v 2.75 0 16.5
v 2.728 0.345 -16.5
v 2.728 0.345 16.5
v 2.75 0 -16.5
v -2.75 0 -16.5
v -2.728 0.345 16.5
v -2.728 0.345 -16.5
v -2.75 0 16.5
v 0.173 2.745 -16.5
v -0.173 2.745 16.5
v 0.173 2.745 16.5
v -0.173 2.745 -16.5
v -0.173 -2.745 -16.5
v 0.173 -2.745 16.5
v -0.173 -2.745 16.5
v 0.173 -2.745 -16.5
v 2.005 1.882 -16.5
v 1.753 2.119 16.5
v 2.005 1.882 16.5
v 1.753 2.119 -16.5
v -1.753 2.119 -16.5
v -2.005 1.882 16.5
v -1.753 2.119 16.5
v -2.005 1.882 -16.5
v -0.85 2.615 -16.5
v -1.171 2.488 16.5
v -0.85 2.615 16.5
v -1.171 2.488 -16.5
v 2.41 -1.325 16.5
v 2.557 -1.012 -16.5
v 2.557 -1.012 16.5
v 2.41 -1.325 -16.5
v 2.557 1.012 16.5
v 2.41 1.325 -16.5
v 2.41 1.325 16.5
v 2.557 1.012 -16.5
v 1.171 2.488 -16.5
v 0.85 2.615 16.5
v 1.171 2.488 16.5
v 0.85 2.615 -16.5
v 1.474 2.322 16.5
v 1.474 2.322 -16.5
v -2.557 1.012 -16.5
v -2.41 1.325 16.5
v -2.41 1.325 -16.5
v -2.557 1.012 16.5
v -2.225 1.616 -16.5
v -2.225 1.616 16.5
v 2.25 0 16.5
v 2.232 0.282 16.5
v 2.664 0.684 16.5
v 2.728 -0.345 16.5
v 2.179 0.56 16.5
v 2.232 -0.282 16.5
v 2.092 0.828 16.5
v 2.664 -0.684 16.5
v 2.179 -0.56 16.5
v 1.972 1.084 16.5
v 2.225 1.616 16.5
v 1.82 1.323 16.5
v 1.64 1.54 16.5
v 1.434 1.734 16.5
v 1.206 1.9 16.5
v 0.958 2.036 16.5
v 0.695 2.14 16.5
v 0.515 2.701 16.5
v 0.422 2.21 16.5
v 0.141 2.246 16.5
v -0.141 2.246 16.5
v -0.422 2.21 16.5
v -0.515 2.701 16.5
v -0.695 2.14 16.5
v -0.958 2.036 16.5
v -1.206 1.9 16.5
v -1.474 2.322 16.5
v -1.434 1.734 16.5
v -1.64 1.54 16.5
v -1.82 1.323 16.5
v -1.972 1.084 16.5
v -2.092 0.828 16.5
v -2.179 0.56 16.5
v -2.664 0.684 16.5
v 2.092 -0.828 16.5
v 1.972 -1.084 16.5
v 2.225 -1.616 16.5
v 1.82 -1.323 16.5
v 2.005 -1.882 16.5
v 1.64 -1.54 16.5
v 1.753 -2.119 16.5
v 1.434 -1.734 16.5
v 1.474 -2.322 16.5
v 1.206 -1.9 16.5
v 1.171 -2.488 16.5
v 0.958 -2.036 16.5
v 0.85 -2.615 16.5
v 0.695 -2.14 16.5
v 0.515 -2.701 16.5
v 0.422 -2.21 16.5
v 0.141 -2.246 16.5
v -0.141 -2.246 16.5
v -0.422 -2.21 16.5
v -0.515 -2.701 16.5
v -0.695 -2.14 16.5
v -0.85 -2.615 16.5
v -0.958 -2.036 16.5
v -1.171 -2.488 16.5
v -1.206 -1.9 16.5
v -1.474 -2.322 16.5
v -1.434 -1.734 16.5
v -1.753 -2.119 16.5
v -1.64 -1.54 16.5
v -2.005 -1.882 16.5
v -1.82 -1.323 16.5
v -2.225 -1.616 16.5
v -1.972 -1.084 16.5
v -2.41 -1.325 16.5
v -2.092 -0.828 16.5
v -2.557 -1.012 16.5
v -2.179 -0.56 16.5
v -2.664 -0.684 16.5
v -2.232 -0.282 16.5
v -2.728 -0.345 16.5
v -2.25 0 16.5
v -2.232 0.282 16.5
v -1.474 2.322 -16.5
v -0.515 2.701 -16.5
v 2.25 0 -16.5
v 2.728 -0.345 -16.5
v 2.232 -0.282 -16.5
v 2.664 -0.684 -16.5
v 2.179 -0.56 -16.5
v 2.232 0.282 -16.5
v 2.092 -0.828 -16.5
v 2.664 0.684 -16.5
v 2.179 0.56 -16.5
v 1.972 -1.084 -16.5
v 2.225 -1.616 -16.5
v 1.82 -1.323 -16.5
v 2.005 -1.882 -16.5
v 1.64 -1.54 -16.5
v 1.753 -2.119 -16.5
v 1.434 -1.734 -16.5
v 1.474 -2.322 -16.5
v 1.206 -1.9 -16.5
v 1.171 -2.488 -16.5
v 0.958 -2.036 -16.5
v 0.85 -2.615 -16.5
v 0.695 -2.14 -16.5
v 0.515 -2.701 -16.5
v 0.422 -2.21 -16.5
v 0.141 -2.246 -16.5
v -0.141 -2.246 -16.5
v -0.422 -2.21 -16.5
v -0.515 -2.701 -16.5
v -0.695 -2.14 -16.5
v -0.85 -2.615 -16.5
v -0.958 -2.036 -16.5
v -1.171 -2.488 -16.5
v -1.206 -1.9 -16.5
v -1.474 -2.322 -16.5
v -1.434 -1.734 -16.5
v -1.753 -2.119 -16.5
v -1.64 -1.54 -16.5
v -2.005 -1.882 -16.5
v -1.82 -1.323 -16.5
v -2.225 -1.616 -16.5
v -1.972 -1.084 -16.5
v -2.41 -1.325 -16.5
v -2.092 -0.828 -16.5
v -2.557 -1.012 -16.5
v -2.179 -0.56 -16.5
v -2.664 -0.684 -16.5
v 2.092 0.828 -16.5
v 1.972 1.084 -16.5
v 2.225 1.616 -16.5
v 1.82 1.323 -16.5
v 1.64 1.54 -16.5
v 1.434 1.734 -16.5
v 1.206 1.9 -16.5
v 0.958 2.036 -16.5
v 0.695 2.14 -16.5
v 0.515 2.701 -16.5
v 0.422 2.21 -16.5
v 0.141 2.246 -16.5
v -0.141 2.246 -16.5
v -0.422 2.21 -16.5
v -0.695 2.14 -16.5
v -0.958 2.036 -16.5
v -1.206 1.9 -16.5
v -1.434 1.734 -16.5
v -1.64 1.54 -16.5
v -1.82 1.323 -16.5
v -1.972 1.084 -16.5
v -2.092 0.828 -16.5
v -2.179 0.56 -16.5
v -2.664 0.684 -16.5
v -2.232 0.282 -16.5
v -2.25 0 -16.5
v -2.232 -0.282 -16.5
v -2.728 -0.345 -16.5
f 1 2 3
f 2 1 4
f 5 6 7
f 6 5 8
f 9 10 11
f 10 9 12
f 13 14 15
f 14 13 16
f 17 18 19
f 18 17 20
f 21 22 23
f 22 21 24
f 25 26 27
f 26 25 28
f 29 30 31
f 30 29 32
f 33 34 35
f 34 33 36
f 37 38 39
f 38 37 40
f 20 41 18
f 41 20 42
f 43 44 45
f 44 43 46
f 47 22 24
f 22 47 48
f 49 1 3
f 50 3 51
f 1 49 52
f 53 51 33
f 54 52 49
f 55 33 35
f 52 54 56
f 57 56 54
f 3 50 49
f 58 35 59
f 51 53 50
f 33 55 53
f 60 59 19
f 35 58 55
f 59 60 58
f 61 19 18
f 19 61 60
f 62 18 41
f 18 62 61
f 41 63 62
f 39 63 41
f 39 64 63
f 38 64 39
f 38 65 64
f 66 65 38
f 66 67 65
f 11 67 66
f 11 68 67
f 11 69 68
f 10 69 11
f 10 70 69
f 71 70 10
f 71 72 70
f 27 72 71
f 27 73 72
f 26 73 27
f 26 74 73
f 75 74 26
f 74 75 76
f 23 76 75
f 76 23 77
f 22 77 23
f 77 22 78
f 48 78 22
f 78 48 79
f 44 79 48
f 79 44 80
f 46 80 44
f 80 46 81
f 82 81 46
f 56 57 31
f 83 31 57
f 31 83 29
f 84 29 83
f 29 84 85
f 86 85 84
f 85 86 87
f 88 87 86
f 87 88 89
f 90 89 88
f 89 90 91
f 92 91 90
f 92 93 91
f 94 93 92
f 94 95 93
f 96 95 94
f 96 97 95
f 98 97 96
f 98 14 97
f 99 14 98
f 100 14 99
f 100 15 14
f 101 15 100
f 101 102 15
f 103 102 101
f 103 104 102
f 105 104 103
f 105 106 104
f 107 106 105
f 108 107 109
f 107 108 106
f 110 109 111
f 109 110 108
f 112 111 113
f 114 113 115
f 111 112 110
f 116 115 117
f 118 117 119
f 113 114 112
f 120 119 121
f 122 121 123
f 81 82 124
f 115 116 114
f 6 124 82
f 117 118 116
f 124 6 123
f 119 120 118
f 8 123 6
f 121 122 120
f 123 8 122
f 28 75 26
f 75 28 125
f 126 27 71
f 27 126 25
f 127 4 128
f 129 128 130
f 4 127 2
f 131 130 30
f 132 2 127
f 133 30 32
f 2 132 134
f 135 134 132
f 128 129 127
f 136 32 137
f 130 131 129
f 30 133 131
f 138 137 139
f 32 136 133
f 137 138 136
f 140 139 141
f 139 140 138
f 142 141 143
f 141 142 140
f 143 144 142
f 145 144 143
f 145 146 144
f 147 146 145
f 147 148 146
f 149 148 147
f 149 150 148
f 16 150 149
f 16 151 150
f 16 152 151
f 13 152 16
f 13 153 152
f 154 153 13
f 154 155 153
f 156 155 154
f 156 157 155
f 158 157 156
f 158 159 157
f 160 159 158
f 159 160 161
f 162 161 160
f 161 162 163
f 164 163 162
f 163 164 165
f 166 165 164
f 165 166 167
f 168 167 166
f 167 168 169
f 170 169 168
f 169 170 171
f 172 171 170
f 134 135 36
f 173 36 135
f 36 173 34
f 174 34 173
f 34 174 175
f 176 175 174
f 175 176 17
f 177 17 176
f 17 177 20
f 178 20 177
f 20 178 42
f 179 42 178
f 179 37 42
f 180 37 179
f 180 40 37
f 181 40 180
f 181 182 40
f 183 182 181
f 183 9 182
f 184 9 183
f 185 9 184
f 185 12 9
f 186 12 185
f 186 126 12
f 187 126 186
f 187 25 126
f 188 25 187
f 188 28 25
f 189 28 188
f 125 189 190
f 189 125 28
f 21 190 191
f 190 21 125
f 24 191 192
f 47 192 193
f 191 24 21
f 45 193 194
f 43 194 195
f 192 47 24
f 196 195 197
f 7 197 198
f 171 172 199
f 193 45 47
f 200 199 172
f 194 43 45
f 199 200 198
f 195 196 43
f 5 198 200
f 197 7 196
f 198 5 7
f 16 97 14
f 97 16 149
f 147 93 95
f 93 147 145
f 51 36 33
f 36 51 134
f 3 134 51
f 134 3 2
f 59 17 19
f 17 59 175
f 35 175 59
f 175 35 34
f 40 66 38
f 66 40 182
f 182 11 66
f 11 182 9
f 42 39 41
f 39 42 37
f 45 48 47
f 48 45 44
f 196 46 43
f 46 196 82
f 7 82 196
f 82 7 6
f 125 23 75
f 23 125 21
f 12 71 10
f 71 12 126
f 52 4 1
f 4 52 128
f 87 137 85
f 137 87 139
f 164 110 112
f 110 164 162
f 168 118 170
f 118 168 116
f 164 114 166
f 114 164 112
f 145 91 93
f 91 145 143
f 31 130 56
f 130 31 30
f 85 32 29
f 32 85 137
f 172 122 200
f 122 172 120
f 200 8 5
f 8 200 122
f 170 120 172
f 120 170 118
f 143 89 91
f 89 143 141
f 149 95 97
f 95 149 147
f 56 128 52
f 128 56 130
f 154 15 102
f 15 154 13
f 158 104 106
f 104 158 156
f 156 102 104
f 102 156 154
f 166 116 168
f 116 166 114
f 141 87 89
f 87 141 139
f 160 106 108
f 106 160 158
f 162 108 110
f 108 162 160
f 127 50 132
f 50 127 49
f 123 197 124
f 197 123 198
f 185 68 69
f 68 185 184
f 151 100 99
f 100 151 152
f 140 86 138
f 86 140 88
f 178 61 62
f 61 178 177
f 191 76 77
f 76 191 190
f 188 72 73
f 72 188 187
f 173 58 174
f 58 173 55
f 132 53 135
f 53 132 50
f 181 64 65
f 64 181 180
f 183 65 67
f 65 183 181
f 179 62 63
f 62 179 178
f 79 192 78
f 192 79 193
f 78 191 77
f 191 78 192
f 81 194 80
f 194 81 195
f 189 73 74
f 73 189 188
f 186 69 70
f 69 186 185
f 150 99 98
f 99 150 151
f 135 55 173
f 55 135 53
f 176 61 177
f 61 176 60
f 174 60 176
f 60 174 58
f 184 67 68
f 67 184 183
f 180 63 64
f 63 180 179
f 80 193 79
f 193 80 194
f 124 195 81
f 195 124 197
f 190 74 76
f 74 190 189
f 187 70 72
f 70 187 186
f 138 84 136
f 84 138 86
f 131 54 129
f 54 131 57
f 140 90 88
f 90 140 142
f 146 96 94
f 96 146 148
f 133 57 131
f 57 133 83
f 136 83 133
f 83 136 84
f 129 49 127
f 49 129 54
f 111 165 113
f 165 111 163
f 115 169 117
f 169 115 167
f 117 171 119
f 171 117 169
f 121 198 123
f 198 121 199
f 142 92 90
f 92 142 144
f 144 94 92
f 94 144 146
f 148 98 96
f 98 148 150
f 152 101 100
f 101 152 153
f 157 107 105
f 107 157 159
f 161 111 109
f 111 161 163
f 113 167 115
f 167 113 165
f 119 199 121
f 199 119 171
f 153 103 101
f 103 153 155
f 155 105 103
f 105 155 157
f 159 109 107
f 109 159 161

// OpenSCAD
$fn = 50;


difference() {
	union() {
		translate(v = [0, 0, -16.5000000000]) {
			cylinder(h = 33, r = 2.7500000000);
		}
	}
	union() {
		translate(v = [0, 0, -100.0000000000]) {
			cylinder(h = 200, r = 2.2500000000);
		}
	}
}
